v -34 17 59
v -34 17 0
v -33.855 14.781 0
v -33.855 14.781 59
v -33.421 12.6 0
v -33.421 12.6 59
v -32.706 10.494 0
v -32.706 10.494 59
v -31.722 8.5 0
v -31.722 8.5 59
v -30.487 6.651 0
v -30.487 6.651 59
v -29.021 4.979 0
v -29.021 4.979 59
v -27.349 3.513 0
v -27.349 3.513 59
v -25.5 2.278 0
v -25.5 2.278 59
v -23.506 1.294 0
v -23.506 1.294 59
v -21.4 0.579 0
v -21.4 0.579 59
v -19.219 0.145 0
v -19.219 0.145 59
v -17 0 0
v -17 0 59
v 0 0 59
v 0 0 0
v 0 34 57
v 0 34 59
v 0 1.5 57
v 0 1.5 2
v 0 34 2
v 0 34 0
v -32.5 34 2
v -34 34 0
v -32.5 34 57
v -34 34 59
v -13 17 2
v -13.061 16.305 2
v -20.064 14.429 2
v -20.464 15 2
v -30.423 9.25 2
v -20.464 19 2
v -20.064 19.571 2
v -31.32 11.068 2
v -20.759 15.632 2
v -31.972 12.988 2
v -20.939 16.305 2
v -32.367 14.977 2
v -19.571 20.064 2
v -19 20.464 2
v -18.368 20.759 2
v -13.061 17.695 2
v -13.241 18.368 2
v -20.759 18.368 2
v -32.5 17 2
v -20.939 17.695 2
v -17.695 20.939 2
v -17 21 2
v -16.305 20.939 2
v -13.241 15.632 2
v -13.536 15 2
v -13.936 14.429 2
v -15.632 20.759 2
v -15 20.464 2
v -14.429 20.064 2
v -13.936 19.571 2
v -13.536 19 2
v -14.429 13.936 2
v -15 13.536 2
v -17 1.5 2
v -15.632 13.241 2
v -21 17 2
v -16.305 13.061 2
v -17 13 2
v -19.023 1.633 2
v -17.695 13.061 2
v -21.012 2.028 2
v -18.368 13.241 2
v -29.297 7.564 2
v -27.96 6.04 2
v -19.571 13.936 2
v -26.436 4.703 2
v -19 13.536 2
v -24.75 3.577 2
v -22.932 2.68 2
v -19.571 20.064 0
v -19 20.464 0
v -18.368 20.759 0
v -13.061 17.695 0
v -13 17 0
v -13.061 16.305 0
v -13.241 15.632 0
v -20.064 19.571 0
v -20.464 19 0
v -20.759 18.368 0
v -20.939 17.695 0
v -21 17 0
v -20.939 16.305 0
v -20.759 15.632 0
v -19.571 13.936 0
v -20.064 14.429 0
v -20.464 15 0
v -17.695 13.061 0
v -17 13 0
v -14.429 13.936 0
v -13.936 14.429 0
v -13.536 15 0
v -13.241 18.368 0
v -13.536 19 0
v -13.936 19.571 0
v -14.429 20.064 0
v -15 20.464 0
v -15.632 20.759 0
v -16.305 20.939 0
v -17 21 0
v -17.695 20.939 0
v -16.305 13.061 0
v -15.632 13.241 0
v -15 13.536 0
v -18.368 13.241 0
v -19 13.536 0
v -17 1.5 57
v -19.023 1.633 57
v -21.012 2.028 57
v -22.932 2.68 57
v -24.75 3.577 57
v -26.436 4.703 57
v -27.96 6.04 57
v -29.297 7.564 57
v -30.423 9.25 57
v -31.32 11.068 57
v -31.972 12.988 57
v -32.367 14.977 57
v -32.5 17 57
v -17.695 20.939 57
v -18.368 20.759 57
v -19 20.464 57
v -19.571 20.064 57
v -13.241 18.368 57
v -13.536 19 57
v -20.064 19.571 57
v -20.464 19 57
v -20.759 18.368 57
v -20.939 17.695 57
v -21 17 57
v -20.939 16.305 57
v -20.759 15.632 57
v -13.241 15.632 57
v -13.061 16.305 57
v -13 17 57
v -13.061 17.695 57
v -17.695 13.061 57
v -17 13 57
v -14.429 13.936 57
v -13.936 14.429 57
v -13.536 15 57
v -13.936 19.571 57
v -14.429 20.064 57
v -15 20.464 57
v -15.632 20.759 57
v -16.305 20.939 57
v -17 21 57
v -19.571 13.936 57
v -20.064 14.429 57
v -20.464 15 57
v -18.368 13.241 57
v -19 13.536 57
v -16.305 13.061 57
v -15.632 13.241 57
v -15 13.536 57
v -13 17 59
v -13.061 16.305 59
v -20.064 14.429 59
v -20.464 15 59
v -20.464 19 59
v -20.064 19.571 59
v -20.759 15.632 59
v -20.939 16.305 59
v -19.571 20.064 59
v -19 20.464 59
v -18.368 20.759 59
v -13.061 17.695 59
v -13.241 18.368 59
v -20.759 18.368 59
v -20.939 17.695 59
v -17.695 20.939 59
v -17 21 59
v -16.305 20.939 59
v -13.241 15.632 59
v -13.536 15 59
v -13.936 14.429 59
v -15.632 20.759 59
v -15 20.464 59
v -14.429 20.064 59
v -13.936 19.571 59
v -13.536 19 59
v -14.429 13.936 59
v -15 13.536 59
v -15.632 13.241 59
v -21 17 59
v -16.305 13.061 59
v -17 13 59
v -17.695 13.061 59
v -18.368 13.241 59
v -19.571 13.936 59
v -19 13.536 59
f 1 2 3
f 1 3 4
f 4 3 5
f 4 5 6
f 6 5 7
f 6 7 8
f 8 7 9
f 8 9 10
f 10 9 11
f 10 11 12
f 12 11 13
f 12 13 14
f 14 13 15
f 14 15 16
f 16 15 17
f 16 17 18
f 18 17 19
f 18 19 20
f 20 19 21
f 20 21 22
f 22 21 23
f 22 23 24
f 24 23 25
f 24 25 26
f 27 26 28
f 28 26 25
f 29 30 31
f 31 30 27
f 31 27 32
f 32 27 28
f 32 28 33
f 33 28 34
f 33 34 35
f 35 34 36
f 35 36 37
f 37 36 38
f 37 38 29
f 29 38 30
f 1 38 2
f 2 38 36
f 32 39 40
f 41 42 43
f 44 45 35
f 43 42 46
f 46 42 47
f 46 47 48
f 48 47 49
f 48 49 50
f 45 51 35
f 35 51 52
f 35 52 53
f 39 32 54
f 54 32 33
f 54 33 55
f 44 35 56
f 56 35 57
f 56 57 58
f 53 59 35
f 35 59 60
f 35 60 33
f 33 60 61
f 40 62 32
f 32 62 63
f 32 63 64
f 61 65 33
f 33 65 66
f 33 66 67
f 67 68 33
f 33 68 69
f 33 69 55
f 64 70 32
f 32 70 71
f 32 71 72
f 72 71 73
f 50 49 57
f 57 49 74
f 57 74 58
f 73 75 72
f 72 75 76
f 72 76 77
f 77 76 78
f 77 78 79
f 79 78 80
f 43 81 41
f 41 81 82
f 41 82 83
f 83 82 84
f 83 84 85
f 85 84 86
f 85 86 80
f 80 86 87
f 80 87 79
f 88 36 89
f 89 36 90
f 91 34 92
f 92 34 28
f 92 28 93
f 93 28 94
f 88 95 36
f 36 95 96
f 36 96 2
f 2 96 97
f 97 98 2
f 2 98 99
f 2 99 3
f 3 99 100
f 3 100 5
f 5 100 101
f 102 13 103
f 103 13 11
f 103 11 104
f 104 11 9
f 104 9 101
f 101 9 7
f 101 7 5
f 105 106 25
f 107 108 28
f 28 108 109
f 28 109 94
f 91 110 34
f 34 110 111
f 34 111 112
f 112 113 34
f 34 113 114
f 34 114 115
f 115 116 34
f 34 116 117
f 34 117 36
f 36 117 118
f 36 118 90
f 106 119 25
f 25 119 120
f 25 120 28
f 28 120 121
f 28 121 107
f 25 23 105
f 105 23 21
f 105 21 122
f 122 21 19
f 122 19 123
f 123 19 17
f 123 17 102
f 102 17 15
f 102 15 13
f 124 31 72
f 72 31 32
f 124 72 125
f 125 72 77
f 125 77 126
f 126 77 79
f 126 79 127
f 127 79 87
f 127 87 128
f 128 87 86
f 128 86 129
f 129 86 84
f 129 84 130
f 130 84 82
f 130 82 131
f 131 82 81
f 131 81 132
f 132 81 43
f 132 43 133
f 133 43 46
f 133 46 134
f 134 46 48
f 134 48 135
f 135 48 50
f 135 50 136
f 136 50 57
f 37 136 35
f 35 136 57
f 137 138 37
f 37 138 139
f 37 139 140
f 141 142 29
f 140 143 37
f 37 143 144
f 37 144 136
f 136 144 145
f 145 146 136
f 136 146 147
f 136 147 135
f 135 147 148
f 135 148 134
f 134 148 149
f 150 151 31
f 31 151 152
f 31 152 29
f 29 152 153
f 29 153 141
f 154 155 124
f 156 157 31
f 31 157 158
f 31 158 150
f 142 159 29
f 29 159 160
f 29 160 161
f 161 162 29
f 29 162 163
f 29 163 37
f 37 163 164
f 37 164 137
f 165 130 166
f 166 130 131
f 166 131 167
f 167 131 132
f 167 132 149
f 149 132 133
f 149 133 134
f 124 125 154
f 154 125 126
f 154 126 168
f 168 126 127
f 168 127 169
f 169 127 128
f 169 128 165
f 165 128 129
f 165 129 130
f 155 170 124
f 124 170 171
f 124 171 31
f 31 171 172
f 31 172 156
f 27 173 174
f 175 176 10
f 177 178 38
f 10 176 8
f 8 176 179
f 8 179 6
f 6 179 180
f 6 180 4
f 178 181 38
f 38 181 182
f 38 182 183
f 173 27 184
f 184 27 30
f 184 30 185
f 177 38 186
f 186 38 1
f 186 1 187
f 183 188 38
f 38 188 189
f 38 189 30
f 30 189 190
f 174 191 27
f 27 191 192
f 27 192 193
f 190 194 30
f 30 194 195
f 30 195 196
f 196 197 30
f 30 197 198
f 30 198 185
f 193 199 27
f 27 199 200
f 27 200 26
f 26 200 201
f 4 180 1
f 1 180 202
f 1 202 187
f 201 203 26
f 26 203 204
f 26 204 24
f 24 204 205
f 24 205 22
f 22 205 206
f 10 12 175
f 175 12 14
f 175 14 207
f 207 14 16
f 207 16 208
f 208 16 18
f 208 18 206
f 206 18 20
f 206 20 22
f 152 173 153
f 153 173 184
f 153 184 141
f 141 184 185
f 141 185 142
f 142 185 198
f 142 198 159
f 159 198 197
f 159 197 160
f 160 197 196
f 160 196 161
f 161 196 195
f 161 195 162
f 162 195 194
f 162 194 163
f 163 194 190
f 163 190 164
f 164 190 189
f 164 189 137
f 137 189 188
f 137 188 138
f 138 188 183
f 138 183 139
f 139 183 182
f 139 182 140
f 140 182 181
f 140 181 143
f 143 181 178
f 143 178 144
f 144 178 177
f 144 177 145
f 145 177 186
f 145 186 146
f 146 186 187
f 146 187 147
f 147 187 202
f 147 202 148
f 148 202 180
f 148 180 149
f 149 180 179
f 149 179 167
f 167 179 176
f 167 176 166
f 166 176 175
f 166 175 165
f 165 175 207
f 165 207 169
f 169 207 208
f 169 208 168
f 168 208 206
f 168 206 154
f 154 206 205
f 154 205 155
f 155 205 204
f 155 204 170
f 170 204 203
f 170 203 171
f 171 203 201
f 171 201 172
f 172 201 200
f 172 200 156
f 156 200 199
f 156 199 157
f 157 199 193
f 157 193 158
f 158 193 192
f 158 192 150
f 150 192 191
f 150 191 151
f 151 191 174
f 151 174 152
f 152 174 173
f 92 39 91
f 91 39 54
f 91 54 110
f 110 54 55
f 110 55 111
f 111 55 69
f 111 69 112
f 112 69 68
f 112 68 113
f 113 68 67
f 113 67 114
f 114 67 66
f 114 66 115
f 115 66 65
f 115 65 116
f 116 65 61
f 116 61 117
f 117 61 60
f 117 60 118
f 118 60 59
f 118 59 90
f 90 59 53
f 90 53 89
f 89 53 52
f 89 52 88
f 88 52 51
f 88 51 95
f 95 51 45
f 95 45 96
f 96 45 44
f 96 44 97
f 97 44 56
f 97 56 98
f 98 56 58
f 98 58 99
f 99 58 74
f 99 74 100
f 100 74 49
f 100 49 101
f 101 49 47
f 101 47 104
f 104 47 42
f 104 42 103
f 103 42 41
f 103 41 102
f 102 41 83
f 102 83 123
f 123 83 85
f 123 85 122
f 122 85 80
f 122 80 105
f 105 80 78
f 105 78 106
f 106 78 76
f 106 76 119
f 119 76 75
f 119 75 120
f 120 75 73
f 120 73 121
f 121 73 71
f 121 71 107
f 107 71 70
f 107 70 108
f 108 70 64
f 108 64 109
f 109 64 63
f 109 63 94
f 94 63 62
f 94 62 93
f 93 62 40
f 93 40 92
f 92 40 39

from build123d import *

# Parameters (mm, degrees)
BOSS_EXTRUDE1_DEPTH = 2
BOSS_EXTRUDE2_DEPTH = 55
BOSS_EXTRUDE3_DEPTH = 2
SKETCH4_R           = 4
CUT_EXTRUDE1_DEPTH  = 60


with BuildPart() as part:
    # Sketch1 → Boss-Extrude1 (new body)
    with BuildSketch(Plane.XY):
        with BuildLine():
            Line((-17, 0), (0, 0))
            Line((0, 0), (0, 17))
            Line((0, 17), (0, 34))
            Line((0, 34), (-17, 34))
            Line((-17, 34), (-34, 34))
            Line((-34, 34), (-34, 17))
            ThreePointArc((-34, 17), (-29.02081528, 4.97918472), (-17, 0))
        make_face()
    extrude(amount=BOSS_EXTRUDE1_DEPTH)

    # Sketch2 → Boss-Extrude2 (add)
    with BuildSketch(Plane.XY.offset(2)):
        with BuildLine():
            Line((-17, 0), (0, 0))
            Line((0, 0), (0, 1.5))
            Line((0, 1.5), (-17, 1.5))
            ThreePointArc((-17, 1.5), (-27.960155108, 6.039844892), (-32.5, 17))
            Line((-32.5, 17), (-32.5, 34))
            Line((-32.5, 34), (-34, 34))
            Line((-34, 34), (-34, 17))
            ThreePointArc((-34, 17), (-29.02081528, 4.97918472), (-17, 0))
        make_face()
    extrude(amount=BOSS_EXTRUDE2_DEPTH)

    # Sketch3 → Boss-Extrude3 (add)
    with BuildSketch(Plane.XY.offset(57)):
        with BuildLine():
            Line((0, 0), (0, 1.5))
            Line((0, 1.5), (0, 34))
            Line((0, 34), (-32.5, 34))
            Line((-32.5, 34), (-34, 34))
            Line((-34, 34), (-34, 17))
            ThreePointArc((-34, 17), (-29.02081528, 4.97918472), (-17, 0))
            Line((-17, 0), (0, 0))
        make_face()
    extrude(amount=BOSS_EXTRUDE3_DEPTH)

    # Sketch4 → Cut-Extrude1 (cut, through all)
    with BuildSketch(Plane.XY.offset(59)):
        with Locations((-17, 17)):
            Circle(SKETCH4_R)
    extrude(amount=-CUT_EXTRUDE1_DEPTH, mode=Mode.SUBTRACT)


solid = part.part
